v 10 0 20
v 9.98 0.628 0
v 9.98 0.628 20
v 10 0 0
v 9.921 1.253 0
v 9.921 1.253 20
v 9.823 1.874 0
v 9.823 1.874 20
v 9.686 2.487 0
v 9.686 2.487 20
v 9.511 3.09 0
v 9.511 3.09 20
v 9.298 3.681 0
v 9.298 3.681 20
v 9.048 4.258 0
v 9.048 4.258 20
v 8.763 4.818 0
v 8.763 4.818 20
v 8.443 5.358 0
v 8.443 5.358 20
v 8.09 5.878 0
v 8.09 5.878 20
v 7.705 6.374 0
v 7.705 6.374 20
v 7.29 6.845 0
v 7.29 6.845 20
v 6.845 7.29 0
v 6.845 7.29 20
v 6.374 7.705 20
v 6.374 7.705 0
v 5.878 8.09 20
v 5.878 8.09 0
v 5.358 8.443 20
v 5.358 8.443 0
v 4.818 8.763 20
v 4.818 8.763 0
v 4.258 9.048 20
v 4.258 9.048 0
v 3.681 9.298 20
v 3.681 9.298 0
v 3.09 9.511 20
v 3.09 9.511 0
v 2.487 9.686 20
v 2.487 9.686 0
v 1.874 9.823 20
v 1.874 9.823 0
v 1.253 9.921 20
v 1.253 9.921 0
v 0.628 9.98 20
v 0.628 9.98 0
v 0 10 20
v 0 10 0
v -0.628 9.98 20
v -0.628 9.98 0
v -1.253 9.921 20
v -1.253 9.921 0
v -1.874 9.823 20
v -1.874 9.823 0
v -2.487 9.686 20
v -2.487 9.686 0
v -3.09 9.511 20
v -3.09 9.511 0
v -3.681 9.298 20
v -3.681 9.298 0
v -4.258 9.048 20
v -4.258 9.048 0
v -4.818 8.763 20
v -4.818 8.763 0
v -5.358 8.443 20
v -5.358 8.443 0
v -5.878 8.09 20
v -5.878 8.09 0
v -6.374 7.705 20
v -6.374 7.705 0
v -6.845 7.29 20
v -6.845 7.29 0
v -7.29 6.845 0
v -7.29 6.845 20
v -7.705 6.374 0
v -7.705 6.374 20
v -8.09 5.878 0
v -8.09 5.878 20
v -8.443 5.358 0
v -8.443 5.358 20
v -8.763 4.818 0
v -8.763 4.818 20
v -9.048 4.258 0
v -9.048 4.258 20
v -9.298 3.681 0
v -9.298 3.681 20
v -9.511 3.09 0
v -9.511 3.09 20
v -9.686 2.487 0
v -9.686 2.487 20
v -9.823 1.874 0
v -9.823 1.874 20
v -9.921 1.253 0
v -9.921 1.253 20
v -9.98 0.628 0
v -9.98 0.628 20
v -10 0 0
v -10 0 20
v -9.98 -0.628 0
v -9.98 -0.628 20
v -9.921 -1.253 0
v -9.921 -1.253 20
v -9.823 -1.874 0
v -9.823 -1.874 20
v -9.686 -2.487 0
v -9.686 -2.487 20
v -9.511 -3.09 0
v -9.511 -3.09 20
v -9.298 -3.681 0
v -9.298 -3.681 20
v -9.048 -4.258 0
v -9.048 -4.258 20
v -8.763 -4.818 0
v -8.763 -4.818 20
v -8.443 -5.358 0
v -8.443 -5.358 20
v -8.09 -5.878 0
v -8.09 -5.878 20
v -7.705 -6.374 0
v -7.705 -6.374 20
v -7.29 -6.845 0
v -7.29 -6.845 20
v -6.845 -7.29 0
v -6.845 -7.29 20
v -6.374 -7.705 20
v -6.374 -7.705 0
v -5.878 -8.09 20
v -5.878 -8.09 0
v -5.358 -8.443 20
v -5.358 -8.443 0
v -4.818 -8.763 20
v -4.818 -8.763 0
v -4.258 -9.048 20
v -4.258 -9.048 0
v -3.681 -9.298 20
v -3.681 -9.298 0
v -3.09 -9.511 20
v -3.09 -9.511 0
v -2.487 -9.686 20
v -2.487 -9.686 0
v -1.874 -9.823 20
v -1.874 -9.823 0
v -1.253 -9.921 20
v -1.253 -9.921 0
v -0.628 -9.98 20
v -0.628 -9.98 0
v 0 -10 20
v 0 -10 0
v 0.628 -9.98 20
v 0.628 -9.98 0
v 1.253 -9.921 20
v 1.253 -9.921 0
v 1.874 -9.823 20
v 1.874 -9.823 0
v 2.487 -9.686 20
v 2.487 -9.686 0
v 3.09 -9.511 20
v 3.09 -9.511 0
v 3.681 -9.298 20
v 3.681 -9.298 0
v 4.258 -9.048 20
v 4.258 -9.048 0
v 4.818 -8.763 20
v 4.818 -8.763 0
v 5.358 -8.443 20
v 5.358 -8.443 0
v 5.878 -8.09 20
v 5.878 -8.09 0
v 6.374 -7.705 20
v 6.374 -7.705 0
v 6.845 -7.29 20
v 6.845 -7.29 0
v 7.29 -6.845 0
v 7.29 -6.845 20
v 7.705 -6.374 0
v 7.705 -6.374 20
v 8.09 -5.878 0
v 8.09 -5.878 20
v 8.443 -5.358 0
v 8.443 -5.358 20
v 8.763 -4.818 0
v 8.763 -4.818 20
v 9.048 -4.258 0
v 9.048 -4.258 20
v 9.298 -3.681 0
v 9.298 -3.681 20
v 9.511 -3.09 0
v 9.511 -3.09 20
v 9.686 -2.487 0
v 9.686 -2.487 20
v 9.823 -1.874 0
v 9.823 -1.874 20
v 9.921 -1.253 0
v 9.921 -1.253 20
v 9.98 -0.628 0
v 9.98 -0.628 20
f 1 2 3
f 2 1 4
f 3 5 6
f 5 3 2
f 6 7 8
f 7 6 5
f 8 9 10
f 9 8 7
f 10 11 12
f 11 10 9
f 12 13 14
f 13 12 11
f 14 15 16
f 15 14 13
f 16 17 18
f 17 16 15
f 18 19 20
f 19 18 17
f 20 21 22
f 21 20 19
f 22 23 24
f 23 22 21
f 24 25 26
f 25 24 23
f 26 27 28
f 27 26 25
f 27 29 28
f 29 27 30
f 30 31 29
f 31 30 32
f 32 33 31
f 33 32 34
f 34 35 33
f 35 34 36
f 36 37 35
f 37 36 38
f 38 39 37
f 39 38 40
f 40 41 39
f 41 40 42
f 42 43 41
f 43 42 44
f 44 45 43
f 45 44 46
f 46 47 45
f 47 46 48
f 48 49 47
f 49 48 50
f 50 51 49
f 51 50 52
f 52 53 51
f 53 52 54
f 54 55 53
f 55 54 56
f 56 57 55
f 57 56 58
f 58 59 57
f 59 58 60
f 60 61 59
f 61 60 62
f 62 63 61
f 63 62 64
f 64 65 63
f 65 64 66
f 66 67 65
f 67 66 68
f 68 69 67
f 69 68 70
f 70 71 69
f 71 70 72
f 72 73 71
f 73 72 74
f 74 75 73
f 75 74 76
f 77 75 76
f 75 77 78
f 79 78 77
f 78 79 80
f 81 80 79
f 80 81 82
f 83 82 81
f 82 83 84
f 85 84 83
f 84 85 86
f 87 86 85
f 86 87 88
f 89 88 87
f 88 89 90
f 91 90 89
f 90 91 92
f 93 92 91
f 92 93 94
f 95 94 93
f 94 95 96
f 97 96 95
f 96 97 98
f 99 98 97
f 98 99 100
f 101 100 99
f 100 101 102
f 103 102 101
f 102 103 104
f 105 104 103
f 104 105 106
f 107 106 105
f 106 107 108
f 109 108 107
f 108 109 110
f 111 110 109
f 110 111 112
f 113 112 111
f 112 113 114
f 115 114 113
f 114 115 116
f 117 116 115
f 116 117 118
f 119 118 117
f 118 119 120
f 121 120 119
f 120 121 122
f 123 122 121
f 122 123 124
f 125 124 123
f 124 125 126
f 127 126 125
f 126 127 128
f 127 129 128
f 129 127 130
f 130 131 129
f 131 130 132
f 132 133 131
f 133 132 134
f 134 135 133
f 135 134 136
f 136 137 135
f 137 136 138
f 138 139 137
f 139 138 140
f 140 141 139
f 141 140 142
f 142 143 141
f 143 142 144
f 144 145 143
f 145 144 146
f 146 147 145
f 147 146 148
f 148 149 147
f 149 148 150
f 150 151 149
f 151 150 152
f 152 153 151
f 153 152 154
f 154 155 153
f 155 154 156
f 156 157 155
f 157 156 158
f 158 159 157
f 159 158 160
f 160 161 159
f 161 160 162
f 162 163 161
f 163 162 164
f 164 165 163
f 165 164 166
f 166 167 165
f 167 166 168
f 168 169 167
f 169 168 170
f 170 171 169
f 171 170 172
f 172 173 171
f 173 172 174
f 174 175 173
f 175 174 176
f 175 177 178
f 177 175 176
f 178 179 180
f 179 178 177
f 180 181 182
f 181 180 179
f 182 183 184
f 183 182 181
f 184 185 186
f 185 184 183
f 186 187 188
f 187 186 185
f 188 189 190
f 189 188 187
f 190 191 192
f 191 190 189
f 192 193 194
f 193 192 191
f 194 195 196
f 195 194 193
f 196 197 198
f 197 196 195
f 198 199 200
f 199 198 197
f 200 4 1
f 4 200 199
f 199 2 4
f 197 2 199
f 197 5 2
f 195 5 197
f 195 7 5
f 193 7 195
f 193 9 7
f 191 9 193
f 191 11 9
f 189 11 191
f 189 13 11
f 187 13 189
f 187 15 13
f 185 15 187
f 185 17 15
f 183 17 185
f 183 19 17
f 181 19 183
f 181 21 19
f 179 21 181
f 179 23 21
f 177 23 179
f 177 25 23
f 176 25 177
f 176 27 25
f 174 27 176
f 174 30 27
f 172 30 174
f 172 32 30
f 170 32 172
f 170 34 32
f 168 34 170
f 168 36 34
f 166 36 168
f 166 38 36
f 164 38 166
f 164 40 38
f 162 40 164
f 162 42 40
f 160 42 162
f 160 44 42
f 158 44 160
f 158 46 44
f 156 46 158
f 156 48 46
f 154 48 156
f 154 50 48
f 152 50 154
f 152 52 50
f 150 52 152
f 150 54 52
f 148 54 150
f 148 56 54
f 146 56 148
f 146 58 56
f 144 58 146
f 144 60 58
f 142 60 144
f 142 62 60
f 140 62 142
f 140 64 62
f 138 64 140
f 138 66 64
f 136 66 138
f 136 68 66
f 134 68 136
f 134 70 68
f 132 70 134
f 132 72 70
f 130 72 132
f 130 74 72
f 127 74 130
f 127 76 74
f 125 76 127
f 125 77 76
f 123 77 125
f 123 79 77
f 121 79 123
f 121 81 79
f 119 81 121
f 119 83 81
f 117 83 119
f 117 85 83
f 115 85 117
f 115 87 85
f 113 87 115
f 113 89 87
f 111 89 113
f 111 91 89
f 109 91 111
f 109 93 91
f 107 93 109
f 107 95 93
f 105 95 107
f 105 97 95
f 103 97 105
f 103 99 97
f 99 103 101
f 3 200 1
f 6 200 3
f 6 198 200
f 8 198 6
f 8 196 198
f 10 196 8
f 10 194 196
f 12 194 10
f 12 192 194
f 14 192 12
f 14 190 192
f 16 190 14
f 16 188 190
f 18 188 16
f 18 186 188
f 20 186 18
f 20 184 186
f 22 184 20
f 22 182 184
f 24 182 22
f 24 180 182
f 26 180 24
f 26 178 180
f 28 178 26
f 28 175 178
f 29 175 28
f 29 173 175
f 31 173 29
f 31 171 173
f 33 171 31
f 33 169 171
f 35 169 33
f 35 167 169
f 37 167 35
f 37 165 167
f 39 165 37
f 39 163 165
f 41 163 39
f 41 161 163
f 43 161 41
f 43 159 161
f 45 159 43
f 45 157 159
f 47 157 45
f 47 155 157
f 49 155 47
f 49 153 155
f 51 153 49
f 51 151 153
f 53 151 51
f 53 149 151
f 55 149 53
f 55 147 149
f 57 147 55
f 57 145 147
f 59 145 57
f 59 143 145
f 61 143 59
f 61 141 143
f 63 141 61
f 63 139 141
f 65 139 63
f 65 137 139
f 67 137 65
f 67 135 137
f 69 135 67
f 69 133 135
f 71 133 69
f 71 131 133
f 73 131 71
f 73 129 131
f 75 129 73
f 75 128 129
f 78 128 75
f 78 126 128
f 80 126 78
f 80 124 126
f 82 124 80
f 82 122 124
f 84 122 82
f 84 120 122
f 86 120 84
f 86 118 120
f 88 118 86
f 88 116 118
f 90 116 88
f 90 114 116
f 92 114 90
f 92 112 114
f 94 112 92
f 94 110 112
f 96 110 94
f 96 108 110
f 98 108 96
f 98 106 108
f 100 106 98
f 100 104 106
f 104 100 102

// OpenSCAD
// Central Cylinder
module central_cylinder() {
    cylinder(h = 20, r = 10, $fn = 100); // Height = 20, Radius = 10, Smooth surface
}

// Main Model
module model() {
    // Layer 1: Central Cylinder
    central_cylinder();
}

// Render the model
model();
